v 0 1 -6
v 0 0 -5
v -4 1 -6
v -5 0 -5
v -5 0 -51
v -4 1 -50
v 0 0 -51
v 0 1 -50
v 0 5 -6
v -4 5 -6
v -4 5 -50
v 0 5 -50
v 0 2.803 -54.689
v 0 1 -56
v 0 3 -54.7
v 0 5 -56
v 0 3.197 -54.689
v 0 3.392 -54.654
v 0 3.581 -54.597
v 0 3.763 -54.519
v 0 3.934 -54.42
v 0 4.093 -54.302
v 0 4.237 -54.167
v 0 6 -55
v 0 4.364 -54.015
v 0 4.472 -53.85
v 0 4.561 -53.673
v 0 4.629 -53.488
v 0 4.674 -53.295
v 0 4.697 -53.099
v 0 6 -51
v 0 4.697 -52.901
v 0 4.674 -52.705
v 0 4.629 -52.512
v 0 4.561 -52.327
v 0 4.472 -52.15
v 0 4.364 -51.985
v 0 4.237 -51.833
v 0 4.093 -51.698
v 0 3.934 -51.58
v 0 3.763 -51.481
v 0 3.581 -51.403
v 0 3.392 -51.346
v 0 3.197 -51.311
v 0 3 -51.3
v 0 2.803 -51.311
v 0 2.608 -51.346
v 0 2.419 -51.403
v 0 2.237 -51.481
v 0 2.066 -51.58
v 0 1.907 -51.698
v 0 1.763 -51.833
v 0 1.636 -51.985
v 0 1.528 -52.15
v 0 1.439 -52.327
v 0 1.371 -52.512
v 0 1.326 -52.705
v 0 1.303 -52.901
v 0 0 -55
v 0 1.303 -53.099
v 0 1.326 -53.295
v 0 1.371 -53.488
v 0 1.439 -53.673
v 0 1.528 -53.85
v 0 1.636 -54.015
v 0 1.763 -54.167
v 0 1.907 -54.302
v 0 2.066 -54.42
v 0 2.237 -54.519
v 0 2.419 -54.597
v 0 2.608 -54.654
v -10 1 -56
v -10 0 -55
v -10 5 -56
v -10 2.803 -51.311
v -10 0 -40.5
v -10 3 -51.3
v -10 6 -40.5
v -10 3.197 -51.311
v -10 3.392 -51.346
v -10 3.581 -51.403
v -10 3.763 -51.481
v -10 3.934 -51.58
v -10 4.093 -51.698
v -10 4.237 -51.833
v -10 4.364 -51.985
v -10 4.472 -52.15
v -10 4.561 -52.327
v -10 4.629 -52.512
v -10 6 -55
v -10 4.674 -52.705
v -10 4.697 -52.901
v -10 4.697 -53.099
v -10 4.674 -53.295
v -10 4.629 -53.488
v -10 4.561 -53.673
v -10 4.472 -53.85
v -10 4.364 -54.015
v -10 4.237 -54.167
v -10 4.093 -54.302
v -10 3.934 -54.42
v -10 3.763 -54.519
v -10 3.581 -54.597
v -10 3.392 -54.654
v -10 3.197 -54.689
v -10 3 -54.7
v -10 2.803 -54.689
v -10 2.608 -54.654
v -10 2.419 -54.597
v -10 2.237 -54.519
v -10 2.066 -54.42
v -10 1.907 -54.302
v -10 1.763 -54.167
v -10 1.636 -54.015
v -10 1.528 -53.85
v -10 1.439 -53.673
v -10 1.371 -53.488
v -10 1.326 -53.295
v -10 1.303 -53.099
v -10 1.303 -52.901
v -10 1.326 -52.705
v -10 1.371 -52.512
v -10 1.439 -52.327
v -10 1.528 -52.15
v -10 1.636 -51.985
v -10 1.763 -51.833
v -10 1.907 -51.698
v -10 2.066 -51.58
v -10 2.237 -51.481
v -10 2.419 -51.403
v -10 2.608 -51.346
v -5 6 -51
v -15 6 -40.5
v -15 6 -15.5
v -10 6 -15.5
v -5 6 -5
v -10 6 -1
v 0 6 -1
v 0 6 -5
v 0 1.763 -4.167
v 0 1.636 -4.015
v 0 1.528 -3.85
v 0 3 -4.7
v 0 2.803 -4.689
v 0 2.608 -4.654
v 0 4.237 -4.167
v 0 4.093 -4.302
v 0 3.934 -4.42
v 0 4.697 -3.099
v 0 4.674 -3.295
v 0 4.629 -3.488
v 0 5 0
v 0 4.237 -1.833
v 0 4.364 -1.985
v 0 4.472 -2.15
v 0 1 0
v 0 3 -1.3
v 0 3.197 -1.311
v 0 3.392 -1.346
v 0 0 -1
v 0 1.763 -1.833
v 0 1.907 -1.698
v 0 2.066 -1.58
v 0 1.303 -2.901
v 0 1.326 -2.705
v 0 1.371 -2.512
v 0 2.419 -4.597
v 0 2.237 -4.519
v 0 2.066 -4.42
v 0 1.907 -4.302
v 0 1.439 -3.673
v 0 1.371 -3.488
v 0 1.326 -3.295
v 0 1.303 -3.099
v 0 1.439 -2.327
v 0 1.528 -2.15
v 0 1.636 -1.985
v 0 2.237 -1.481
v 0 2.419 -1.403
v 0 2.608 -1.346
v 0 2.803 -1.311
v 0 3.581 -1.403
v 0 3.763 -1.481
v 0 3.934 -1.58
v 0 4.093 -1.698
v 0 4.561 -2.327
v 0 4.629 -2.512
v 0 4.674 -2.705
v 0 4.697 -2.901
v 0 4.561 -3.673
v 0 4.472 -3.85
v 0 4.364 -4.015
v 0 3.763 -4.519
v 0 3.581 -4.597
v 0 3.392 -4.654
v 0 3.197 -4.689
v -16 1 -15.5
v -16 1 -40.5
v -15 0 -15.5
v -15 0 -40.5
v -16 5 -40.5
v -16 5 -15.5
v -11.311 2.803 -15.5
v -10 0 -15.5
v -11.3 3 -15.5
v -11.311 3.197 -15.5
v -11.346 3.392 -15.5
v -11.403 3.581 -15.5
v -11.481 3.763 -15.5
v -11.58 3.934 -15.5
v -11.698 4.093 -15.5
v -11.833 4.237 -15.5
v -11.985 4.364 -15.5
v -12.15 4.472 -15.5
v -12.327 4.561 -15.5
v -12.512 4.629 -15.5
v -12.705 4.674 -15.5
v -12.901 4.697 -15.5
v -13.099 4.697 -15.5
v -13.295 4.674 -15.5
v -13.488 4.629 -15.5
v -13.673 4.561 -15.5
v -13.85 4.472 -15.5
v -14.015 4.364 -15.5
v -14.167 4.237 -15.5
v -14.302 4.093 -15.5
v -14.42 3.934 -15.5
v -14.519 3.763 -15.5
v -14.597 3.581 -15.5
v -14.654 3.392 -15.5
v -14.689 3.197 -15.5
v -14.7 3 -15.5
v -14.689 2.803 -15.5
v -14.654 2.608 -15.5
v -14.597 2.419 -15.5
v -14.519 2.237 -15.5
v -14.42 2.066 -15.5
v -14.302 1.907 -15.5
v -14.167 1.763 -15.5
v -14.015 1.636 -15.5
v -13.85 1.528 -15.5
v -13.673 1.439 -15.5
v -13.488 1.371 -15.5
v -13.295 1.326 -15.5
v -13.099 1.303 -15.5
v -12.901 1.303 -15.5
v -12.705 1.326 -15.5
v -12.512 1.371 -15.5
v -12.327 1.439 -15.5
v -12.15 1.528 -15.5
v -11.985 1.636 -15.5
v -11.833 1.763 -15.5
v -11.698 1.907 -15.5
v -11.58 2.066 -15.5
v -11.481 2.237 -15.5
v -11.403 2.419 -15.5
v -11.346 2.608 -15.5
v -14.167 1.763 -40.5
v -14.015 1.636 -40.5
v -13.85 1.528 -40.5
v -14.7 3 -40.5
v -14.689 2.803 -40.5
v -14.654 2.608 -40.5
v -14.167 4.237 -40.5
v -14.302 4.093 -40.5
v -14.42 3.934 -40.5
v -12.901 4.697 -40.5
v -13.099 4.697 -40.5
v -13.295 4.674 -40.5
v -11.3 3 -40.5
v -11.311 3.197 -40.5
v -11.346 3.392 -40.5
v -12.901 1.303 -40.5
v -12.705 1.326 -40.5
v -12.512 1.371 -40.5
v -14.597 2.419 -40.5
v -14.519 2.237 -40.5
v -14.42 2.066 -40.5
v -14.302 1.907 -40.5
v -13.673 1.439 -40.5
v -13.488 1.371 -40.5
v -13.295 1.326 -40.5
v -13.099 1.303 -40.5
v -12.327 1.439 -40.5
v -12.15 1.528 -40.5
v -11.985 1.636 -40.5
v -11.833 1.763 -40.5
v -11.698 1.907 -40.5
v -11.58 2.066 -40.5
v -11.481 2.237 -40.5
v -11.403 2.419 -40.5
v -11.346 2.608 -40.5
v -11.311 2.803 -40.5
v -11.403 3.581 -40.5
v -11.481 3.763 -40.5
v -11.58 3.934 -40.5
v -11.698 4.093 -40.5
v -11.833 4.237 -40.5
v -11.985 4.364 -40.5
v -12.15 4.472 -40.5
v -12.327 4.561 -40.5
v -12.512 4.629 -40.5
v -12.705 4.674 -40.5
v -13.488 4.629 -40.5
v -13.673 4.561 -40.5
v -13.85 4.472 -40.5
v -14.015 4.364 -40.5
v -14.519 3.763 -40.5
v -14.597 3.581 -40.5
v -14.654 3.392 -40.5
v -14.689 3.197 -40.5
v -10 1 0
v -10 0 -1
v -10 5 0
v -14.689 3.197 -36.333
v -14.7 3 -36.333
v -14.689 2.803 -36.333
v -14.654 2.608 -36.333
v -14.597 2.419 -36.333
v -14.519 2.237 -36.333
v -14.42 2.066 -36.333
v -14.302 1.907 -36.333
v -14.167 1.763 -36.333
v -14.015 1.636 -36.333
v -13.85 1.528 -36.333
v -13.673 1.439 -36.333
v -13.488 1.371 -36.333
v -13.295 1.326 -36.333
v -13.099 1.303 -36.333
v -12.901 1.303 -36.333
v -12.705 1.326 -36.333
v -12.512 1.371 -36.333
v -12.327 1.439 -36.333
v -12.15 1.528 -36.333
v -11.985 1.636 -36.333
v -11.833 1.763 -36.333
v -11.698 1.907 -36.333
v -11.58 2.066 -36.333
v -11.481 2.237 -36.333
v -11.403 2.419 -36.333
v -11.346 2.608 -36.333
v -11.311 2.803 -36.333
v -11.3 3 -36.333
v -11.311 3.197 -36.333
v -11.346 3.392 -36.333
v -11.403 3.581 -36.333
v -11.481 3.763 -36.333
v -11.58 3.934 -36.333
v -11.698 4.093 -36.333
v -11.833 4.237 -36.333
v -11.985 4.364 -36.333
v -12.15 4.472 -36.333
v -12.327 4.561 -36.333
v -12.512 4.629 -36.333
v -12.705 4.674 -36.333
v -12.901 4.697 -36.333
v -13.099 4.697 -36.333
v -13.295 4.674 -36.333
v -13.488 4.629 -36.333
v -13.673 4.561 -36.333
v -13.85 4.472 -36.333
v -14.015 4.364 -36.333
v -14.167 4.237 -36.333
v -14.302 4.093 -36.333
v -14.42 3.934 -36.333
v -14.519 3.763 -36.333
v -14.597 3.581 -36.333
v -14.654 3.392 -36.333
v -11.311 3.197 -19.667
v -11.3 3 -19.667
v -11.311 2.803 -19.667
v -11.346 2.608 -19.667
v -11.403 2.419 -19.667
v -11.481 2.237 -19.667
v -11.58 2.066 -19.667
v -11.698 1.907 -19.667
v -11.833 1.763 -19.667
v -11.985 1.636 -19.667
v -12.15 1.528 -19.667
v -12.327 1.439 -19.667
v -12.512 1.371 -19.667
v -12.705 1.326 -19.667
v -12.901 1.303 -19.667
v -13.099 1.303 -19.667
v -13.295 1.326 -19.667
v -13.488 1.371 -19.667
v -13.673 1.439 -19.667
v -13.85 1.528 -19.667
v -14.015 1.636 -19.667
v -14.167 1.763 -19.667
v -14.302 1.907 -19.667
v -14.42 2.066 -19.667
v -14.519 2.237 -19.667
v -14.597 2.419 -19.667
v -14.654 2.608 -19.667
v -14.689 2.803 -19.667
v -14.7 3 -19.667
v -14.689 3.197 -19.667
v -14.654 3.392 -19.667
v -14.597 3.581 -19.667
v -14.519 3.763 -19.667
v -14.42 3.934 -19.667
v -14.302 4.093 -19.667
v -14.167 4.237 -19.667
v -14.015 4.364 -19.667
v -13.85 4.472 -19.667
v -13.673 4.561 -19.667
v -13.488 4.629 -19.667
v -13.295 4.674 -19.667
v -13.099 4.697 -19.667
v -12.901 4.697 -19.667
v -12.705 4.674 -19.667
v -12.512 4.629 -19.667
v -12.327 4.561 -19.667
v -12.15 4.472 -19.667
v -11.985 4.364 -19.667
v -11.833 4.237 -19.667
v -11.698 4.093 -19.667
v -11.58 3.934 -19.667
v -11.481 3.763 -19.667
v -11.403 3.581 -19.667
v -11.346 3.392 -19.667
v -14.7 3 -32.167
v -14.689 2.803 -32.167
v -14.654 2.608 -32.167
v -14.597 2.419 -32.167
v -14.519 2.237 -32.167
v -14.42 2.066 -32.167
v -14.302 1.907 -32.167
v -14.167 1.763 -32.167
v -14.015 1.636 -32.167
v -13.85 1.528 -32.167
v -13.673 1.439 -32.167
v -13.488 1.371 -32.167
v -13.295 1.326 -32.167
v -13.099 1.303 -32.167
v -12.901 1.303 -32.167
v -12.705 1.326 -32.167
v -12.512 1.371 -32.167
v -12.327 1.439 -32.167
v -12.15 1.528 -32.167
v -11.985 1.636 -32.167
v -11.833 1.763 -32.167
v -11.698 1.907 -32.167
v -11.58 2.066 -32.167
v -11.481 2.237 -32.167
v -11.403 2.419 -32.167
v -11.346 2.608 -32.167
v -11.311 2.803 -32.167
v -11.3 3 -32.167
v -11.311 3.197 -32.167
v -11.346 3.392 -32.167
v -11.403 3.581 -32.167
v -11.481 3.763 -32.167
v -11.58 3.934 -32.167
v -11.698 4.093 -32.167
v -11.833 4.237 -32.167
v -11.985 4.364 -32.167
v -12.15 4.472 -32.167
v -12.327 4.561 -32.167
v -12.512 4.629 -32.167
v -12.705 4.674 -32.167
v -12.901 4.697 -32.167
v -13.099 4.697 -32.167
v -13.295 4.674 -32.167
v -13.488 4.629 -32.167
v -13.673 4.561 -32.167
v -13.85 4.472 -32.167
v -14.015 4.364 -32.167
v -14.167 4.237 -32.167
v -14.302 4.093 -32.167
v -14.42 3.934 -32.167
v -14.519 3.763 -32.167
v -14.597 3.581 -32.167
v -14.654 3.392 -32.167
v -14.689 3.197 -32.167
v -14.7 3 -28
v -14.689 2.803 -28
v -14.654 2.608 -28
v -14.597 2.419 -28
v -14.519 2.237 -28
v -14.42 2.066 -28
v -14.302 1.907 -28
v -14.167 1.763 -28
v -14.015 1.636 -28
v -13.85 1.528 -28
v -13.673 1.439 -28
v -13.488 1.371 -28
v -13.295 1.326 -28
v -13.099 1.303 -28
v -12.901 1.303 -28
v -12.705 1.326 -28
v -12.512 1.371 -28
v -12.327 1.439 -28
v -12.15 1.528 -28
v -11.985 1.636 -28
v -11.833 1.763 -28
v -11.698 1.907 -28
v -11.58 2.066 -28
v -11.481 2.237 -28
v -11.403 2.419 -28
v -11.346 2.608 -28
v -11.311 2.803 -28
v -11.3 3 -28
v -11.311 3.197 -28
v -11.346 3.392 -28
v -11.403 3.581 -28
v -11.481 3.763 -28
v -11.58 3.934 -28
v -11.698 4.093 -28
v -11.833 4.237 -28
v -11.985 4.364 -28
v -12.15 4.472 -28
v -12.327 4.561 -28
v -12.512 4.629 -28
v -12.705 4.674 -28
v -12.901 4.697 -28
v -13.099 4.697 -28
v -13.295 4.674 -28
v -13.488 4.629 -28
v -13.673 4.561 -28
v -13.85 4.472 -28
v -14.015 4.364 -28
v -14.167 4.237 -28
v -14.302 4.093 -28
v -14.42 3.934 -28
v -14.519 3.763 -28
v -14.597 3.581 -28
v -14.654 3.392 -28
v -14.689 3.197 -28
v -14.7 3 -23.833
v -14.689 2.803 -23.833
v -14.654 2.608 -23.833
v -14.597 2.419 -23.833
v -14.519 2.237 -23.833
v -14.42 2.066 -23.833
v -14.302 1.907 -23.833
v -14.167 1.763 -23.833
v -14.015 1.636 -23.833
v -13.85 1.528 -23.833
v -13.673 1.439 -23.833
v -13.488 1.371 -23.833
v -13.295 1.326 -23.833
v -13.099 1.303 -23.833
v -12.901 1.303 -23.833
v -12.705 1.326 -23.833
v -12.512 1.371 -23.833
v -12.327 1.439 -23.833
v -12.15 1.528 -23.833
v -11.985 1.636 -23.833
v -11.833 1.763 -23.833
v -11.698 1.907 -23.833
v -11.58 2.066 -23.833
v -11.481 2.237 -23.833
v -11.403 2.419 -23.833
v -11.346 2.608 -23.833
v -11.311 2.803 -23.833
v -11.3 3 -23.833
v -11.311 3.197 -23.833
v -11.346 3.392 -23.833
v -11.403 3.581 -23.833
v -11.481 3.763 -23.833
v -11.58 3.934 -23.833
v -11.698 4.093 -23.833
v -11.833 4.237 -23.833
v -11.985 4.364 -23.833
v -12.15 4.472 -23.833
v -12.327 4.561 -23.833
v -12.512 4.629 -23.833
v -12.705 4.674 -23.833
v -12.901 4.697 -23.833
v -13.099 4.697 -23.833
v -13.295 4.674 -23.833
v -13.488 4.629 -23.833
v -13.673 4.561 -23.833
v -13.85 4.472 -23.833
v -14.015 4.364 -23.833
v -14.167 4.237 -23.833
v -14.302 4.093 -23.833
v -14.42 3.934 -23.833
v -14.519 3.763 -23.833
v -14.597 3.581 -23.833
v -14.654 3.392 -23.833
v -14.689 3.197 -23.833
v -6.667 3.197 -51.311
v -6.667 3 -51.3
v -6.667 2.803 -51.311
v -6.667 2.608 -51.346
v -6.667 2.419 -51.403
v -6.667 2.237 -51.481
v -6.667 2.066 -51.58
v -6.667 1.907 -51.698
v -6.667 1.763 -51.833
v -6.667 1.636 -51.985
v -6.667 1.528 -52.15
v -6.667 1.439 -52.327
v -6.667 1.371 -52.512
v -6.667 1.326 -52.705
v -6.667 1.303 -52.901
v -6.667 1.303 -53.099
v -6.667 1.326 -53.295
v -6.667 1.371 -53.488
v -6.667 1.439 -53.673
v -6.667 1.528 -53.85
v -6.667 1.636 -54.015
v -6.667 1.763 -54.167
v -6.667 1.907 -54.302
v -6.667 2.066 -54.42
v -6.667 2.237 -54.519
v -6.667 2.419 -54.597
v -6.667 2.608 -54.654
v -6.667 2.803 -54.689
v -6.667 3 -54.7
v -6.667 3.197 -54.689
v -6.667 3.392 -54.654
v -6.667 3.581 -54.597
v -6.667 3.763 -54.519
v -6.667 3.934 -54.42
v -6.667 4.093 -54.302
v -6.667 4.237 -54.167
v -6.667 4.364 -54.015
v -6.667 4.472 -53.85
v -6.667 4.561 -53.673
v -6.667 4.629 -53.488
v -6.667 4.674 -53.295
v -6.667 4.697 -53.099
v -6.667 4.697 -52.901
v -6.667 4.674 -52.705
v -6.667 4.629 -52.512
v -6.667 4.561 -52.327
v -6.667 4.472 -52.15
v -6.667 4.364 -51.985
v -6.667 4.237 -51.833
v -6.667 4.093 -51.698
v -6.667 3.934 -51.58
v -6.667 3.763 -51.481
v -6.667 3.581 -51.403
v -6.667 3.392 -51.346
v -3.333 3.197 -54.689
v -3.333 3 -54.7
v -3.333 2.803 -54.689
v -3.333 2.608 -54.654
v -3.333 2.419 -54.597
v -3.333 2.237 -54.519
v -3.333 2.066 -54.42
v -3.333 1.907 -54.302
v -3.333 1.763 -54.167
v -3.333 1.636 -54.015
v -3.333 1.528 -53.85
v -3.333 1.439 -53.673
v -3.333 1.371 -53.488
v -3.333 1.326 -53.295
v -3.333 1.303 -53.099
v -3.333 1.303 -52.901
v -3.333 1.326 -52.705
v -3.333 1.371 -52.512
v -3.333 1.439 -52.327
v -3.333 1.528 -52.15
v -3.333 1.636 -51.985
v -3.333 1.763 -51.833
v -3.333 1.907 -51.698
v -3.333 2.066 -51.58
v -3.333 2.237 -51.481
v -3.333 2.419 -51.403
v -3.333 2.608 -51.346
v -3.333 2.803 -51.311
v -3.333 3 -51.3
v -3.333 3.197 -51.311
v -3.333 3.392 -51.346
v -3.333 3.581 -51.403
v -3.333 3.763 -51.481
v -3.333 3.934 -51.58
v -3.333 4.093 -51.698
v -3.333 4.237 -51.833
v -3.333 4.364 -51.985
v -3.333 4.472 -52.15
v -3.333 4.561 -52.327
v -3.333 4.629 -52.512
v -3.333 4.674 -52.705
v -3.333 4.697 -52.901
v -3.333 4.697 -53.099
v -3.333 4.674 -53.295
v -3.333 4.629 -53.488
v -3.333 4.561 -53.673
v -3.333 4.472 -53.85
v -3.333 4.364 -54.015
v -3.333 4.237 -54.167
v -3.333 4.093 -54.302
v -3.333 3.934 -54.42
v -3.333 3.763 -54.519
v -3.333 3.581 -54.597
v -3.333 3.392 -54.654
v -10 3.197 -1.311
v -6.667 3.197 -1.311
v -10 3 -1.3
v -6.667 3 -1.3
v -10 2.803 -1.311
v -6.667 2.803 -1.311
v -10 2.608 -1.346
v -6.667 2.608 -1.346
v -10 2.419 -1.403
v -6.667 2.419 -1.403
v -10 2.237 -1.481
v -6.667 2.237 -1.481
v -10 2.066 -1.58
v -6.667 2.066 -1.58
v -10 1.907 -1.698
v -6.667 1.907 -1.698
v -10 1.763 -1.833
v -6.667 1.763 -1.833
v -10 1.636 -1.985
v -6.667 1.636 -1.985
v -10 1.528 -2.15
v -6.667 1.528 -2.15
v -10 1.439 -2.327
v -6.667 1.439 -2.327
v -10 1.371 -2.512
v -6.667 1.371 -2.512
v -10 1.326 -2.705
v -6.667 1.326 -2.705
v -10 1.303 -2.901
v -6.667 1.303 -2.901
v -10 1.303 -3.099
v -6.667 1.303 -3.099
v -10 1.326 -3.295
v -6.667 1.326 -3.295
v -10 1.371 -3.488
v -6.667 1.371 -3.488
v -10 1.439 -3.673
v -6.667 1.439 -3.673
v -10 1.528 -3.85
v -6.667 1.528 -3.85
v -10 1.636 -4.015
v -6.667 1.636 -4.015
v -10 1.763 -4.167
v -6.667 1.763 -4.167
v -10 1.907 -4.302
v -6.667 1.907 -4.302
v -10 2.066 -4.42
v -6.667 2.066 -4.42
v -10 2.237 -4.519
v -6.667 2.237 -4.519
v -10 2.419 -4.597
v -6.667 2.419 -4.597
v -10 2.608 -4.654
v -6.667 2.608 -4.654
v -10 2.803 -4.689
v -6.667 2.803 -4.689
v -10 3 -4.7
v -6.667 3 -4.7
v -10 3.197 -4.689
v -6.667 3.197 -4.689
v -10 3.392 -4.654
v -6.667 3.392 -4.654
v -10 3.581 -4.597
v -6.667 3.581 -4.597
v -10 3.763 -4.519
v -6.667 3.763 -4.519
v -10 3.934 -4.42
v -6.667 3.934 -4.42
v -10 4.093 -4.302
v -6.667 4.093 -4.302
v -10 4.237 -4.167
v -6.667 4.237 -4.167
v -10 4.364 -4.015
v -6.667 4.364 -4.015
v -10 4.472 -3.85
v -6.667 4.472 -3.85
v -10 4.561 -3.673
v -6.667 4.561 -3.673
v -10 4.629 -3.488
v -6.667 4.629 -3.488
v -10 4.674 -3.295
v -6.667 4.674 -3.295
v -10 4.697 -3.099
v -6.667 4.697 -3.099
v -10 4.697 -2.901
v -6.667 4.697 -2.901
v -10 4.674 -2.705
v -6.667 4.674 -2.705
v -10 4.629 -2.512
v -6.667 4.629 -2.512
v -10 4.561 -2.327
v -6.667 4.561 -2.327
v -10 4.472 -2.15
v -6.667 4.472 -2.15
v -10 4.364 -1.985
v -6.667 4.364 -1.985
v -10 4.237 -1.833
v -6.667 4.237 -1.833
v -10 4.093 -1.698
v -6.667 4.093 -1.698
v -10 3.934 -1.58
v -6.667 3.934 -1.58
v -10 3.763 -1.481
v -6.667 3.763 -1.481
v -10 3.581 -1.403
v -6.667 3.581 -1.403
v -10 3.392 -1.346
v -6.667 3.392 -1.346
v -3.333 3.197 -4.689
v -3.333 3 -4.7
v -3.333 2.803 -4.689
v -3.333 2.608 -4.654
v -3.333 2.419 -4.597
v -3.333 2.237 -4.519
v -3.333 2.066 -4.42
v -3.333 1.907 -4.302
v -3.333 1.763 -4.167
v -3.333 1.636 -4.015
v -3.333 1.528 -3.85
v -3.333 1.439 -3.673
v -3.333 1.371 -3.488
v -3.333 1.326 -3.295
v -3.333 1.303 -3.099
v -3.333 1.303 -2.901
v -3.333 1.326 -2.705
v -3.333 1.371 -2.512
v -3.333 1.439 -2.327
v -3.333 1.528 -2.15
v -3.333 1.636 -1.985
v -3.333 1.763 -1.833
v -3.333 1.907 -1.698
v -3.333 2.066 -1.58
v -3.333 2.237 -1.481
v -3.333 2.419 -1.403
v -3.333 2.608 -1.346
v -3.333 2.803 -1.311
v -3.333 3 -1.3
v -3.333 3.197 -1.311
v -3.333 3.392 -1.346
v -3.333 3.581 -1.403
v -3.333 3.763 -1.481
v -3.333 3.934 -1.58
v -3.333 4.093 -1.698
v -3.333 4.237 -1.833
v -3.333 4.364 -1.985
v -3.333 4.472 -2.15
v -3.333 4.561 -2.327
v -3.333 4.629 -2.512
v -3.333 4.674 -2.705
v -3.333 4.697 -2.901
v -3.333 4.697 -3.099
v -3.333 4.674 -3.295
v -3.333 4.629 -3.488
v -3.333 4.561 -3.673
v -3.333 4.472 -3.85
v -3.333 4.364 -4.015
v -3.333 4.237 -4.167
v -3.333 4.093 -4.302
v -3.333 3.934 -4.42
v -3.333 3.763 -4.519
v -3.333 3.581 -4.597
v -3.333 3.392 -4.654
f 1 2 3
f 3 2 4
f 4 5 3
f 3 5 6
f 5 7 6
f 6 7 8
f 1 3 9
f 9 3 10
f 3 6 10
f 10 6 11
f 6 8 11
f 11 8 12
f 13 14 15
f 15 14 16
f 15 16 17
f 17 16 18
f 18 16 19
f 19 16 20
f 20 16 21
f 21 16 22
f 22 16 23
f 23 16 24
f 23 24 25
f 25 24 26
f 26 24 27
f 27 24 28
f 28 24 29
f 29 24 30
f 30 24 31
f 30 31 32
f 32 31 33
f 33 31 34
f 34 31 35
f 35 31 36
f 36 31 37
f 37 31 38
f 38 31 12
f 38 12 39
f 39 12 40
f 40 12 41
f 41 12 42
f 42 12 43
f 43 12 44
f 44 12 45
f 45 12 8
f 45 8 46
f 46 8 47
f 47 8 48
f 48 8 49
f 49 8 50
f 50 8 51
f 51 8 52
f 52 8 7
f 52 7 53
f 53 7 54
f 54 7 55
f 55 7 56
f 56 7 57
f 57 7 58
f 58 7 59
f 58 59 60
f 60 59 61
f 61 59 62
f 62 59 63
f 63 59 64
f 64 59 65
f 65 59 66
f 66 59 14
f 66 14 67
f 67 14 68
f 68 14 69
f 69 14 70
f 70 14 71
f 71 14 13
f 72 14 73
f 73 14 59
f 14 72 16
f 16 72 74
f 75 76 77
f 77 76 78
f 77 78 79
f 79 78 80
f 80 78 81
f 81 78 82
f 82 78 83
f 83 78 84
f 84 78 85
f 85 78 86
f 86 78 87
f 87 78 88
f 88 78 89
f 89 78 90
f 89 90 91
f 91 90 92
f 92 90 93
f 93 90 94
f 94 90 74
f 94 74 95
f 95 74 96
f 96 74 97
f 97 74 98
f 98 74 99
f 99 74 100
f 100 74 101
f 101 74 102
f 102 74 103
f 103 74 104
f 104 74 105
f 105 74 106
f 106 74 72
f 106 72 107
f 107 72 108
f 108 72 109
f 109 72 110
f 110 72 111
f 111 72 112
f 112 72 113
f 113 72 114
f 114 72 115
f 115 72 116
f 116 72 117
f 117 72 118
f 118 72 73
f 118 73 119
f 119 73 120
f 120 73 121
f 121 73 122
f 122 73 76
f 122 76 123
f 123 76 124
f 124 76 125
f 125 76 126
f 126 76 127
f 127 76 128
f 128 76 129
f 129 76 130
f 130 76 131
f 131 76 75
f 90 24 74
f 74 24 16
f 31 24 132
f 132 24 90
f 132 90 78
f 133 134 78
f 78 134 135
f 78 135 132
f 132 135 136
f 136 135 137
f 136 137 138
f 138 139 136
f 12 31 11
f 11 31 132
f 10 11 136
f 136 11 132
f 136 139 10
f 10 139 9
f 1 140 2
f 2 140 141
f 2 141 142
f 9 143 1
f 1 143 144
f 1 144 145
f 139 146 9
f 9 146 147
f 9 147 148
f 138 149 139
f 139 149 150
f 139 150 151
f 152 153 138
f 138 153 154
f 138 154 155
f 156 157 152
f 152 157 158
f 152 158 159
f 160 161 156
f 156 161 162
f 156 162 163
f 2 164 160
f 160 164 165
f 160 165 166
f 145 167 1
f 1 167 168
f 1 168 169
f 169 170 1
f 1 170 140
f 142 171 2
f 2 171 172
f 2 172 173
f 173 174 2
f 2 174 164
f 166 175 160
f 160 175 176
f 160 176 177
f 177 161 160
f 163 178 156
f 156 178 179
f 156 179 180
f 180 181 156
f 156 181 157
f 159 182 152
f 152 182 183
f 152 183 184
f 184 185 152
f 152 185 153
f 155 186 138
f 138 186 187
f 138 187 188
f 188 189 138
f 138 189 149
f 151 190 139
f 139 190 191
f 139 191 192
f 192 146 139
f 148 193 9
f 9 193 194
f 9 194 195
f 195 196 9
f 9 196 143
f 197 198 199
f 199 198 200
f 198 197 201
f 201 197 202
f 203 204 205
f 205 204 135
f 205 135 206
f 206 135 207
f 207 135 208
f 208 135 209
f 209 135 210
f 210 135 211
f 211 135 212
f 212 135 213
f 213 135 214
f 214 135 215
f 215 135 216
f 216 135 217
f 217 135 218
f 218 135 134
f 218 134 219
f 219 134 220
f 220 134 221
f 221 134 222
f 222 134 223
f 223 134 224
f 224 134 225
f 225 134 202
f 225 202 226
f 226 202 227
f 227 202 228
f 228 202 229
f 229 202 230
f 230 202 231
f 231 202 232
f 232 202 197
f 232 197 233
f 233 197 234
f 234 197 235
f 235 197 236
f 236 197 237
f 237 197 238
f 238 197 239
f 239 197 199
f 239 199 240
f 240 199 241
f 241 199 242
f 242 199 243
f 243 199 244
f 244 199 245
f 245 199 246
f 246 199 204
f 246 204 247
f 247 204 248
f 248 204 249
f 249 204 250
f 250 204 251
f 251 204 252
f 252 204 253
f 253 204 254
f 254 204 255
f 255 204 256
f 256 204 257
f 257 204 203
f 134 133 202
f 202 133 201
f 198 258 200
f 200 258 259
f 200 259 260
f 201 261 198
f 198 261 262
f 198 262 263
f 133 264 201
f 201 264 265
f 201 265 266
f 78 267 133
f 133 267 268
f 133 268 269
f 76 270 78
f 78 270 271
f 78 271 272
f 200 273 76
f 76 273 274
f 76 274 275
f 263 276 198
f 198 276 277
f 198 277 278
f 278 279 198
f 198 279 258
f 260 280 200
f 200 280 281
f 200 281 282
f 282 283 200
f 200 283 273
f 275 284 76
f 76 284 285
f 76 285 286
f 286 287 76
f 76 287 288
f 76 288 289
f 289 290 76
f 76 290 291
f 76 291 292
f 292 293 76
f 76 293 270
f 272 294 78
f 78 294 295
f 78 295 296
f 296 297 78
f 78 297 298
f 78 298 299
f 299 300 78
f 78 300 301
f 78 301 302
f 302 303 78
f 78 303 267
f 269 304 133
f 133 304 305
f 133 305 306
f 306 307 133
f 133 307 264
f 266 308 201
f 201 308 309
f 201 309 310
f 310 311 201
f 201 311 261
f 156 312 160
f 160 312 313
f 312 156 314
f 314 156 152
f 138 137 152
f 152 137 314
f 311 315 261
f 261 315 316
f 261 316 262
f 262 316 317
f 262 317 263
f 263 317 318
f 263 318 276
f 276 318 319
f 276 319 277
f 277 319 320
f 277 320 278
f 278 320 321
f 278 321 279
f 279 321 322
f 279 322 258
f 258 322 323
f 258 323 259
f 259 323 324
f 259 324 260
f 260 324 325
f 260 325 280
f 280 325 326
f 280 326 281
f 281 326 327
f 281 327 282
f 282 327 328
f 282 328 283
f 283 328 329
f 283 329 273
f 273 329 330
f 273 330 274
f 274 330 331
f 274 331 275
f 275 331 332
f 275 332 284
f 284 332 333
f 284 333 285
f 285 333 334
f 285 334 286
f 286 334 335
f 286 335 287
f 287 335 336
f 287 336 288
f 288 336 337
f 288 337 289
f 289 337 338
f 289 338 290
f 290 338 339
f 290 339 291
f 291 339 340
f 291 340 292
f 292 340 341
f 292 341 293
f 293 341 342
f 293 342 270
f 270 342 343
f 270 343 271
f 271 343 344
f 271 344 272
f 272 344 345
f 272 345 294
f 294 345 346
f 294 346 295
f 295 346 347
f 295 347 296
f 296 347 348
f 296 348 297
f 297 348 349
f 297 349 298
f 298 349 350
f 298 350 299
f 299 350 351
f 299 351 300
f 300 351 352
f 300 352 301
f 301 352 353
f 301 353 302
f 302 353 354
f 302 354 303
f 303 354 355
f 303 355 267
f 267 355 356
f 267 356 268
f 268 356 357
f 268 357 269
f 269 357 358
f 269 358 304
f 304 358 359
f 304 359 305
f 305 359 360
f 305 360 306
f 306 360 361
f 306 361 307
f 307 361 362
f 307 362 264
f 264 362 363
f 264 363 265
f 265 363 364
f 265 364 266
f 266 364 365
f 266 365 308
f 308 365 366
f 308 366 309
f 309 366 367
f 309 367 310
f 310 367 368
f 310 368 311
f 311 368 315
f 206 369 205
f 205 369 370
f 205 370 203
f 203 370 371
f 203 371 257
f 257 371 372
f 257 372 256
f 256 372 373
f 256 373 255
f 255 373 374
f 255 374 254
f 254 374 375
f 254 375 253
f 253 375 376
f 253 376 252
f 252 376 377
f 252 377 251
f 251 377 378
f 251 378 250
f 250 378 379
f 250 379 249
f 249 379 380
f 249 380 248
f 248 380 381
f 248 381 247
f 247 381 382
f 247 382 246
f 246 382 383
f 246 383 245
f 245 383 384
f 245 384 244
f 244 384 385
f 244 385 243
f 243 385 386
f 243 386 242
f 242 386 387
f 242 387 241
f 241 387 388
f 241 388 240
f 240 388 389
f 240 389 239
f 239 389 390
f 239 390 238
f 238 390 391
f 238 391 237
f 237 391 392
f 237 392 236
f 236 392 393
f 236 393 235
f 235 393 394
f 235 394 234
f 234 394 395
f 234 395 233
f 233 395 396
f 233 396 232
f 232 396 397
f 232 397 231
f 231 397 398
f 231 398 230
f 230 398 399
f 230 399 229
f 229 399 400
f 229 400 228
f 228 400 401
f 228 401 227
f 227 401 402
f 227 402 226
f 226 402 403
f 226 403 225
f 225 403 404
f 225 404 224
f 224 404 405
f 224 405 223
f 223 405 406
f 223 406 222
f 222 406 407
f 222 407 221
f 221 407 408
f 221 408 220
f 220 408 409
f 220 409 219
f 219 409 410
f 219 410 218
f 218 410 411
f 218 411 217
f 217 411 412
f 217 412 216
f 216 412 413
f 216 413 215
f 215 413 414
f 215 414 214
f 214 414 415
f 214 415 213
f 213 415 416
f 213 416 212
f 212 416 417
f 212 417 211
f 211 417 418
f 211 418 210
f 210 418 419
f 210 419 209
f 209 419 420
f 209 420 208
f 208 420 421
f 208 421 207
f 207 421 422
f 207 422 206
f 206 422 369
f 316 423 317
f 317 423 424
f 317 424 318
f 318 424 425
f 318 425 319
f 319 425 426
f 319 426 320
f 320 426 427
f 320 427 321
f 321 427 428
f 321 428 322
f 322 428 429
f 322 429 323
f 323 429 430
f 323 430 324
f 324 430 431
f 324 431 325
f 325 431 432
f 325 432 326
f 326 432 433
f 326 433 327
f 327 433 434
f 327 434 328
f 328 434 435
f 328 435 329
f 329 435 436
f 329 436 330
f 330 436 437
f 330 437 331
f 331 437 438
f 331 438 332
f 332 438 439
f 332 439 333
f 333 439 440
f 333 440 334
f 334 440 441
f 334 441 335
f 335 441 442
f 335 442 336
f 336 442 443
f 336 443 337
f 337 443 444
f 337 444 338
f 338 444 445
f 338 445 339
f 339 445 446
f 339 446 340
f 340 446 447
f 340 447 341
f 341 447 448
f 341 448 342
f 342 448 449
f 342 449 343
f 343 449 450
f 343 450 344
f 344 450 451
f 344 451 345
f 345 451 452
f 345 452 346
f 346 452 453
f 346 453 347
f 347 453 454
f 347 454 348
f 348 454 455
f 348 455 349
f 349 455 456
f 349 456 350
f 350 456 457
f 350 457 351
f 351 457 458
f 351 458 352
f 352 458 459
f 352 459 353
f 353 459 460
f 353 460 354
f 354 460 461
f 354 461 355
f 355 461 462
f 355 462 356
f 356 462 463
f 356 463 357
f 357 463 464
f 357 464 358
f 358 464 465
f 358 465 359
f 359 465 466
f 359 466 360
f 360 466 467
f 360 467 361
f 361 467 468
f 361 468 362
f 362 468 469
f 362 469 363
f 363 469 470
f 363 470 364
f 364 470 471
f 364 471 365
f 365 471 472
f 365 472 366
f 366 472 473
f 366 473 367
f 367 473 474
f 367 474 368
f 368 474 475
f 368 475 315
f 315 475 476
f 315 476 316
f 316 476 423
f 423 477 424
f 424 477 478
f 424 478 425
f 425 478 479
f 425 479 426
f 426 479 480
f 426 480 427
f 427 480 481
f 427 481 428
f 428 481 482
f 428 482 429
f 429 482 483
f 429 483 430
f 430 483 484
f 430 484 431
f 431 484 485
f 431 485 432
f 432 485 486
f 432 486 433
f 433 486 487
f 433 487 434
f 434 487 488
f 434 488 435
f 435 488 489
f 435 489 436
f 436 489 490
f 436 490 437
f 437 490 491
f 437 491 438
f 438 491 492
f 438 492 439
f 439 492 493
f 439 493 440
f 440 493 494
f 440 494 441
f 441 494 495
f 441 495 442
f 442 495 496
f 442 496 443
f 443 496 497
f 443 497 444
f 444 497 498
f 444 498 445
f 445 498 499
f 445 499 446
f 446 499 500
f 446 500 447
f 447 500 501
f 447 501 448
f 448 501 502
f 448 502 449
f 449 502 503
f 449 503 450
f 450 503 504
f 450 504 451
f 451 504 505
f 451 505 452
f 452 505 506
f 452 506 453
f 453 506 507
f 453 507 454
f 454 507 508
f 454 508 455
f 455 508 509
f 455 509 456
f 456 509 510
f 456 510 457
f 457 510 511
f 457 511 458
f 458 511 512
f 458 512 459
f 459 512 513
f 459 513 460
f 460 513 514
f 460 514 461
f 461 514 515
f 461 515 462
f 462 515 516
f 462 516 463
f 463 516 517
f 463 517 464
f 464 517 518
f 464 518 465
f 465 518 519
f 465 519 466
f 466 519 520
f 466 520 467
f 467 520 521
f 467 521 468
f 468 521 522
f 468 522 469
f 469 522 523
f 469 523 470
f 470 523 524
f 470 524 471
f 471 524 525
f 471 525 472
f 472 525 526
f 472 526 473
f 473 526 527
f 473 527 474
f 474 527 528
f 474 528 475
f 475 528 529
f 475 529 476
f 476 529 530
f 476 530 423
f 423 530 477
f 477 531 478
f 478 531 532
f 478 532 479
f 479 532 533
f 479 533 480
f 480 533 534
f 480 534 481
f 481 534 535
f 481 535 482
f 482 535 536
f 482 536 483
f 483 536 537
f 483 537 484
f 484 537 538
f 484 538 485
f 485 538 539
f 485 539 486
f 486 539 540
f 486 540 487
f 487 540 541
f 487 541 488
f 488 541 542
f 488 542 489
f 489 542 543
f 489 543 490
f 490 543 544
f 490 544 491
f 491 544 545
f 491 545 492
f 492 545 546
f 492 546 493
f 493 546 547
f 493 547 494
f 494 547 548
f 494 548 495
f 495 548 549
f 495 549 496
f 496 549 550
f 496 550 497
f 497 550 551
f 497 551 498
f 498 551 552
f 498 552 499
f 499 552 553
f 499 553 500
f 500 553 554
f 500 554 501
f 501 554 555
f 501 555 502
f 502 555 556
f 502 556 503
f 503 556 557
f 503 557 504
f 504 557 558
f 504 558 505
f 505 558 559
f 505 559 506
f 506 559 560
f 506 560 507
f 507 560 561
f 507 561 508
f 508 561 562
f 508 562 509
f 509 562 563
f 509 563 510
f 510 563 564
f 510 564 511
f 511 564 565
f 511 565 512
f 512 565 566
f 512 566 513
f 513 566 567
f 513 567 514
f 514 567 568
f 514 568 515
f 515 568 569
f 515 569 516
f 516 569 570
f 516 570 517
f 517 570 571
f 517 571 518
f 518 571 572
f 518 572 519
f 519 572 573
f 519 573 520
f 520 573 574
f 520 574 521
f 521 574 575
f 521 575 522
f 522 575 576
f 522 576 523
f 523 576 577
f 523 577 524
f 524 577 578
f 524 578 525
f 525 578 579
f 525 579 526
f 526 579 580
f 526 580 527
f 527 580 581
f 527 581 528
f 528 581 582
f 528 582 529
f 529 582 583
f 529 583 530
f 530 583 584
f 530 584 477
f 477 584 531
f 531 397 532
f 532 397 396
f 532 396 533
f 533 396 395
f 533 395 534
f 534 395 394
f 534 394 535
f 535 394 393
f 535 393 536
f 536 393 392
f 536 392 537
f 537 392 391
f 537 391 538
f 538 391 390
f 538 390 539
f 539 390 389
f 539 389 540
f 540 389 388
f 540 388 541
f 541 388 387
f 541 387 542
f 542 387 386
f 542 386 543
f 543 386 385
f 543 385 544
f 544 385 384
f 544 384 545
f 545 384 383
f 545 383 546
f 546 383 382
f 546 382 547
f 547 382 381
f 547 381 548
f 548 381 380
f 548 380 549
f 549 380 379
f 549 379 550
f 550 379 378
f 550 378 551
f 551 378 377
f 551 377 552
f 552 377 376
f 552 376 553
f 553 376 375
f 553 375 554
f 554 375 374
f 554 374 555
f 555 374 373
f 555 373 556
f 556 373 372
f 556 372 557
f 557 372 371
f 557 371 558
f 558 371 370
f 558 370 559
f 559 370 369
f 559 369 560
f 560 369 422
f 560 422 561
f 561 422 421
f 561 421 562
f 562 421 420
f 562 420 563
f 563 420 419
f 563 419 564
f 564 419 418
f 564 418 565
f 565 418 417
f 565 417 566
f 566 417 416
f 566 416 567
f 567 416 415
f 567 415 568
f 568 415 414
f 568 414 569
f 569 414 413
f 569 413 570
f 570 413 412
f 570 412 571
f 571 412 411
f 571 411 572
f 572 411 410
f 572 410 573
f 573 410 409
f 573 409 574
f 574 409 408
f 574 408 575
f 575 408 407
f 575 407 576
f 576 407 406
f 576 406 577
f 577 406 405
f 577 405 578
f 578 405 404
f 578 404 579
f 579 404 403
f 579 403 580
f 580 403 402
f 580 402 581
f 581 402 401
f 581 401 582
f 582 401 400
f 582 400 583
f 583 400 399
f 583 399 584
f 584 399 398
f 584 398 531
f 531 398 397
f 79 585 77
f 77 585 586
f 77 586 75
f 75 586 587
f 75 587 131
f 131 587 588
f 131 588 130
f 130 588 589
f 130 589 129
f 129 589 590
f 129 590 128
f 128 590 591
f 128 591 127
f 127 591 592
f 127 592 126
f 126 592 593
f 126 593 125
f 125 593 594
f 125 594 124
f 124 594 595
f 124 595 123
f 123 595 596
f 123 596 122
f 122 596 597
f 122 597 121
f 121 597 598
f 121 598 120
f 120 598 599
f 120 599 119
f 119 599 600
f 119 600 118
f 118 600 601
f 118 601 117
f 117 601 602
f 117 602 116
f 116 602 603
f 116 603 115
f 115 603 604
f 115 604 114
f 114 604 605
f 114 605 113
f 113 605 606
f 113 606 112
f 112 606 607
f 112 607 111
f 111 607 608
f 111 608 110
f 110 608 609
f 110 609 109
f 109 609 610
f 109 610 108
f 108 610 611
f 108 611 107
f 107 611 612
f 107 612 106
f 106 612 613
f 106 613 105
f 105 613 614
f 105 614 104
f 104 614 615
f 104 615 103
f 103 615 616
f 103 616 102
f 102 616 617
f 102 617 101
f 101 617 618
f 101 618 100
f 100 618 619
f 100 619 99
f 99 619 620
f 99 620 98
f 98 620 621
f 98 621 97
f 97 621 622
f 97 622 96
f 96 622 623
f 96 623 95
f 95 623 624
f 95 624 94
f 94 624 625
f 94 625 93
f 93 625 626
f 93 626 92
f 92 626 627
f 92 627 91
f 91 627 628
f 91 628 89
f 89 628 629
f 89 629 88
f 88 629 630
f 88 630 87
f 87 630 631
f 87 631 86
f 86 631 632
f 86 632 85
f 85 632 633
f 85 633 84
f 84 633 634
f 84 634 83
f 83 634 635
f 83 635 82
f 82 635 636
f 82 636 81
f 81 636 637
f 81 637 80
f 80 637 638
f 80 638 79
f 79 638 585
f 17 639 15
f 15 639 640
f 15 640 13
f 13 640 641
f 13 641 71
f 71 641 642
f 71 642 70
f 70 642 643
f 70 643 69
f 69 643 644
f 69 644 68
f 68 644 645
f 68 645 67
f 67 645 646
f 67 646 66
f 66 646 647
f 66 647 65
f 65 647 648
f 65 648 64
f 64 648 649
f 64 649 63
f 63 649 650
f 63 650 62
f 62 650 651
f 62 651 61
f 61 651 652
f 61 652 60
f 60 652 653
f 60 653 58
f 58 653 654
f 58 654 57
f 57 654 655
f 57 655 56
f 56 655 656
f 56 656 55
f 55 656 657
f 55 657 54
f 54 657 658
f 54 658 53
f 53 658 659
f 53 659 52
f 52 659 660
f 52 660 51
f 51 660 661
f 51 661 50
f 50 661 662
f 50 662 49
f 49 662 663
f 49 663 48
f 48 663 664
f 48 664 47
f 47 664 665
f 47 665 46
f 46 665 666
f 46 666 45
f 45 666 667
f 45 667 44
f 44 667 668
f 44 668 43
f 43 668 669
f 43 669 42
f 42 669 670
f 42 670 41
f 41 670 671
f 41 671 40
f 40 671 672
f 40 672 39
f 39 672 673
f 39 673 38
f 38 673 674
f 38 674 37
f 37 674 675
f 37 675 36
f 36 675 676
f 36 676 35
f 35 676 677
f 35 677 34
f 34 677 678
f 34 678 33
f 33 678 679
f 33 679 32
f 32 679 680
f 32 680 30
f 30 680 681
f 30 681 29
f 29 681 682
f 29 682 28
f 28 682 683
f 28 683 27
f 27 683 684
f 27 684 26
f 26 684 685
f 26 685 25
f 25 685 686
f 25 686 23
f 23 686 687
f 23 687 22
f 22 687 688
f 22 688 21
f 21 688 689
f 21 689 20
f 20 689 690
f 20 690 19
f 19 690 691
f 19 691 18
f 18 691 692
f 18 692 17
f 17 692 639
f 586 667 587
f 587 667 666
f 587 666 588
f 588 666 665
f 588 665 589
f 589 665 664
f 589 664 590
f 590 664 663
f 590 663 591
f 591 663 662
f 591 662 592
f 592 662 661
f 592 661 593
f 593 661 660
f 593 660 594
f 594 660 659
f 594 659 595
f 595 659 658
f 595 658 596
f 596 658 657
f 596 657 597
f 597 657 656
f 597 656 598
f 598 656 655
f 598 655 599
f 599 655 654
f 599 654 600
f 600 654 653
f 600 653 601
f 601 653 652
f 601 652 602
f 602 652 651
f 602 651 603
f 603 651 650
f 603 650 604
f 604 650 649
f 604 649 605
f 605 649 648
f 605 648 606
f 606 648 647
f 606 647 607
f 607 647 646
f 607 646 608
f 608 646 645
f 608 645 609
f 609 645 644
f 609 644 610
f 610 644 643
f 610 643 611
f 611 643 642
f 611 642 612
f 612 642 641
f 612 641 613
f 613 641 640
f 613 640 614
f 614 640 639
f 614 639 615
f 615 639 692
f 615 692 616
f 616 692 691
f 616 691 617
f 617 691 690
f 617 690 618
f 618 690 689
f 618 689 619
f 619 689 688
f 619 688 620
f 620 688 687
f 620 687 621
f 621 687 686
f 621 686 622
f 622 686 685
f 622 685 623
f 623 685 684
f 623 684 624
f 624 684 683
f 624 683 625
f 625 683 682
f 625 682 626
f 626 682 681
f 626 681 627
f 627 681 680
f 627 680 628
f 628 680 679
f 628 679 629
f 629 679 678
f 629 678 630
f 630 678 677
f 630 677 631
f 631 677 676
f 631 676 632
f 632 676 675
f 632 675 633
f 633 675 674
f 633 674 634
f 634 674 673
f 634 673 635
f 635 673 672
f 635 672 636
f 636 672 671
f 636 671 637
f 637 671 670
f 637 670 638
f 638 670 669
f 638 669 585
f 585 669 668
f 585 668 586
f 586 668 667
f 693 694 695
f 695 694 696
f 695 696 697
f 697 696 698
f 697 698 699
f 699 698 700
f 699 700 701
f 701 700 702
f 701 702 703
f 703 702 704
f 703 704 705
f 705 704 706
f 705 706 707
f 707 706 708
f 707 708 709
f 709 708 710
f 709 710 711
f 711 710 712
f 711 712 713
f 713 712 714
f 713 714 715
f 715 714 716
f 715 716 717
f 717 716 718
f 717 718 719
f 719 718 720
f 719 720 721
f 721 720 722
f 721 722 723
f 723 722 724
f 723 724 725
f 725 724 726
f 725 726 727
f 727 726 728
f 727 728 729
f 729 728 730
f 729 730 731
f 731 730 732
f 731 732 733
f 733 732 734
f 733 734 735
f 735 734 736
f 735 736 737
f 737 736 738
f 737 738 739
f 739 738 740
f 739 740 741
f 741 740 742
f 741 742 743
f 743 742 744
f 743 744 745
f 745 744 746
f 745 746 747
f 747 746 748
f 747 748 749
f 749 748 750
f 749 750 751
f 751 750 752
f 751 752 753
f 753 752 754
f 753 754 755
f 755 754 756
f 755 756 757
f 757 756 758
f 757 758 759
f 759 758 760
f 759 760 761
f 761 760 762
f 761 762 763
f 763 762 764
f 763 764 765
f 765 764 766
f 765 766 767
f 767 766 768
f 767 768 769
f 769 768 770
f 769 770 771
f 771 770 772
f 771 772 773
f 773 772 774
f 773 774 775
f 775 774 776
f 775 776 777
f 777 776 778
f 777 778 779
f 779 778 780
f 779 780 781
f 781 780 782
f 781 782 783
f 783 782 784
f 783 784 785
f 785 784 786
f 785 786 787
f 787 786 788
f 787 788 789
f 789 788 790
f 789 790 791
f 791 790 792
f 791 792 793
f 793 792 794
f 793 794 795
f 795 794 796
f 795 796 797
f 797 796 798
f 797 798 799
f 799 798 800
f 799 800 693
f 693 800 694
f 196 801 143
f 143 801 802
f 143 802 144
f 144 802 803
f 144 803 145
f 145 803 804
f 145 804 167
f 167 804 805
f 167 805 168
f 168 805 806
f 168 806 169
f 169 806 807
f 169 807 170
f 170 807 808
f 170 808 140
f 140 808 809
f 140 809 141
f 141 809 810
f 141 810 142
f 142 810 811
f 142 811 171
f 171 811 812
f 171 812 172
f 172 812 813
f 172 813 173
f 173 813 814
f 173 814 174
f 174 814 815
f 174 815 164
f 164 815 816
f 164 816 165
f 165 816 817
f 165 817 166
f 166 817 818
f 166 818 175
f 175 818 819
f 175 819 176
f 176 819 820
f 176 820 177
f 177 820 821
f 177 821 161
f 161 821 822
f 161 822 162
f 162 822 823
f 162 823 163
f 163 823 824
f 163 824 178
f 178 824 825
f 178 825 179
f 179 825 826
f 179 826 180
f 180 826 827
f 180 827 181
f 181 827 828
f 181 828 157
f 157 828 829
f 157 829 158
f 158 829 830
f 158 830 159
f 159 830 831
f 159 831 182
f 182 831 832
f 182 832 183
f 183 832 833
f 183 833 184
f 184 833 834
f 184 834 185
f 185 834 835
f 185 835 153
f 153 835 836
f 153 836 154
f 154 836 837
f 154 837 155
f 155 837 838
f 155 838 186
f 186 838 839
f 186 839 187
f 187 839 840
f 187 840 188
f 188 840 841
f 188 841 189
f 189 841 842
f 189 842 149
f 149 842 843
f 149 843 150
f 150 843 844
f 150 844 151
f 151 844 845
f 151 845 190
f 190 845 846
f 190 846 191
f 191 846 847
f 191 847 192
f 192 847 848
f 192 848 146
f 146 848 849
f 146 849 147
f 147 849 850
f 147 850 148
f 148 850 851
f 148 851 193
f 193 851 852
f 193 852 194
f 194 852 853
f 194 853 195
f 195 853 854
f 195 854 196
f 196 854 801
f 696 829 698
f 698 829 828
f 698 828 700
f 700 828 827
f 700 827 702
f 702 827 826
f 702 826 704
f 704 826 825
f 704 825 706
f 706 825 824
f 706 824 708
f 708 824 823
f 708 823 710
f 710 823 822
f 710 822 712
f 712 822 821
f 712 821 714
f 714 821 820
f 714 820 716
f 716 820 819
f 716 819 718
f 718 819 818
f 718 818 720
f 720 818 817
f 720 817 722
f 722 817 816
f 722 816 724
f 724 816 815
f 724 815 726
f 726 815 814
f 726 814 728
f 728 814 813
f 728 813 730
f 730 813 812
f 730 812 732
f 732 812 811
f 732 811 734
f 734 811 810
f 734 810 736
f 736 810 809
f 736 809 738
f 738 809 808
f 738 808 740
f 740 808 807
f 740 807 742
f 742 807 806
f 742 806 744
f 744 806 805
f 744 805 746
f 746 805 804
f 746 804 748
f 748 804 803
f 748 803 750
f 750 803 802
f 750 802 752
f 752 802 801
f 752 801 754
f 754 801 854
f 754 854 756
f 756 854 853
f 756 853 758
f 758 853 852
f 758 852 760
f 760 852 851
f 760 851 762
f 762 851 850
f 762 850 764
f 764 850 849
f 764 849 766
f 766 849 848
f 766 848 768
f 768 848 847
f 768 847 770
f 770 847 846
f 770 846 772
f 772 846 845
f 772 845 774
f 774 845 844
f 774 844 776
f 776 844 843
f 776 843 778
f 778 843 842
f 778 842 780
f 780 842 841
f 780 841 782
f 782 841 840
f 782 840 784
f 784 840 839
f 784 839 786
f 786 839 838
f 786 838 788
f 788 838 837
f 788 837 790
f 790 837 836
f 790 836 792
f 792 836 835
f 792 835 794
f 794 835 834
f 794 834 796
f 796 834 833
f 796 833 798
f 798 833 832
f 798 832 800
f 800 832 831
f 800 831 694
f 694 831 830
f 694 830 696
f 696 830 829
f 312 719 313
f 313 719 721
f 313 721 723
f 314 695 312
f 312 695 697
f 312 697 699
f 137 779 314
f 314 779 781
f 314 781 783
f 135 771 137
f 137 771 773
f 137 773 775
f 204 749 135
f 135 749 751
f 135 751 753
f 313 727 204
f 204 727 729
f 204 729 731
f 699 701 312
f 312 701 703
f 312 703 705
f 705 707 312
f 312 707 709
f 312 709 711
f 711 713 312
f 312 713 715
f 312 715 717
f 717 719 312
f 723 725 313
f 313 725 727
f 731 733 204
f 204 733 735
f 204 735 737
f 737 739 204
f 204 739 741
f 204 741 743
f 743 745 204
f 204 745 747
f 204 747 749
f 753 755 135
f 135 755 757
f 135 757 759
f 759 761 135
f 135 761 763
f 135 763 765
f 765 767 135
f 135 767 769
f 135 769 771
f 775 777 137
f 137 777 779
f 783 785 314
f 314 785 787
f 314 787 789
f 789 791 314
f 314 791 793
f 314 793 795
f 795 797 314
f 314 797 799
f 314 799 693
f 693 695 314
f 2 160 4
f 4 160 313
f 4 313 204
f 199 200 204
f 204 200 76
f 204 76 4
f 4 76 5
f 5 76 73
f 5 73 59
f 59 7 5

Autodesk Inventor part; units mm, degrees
ref_plane "YZ Plane" through (0, 0, 0) normal (1, 0, 0) x (0, 1, 0)
ref_plane "XZ Plane" through (0, 0, 0) normal (0, 1, 0) x (-1, 0, 0)
ref_plane "XY Plane" through (0, 0, 0) normal (0, 0, 1) x (1, 0, 0)
sketch "Sketch1" plane through (0, 0, 0) normal (0, 1, 0) x (-1, 0, 0)
  line L0 (0, 0) -> (0, -6)
  line L1 (0, -6) -> (4, -6)
  line L2 (4, -6) -> (4, -50)
  line L3 (4, -50) -> (0, -50)
  line L4 (0, -50) -> (0, -56)
  line L5 (0, -56) -> (10, -56)
  line L6 (0, 0) -> (10, 0)
  line L7 (10, 0) -> (10, -15.5)
  line L8 (10, -15.5) -> (16, -15.5)
  line L9 (16, -40.5) -> (10, -40.5)
  line L10 (10, -40.5) -> (10, -56)
  line L11 (16, -15.5) -> (16, -40.5)
  point P0 (0, -3)
  point P1 (0, -53)
  dimension "d0" = 25
  dimension "d1" = 6
  dimension "d2" = 50
  dimension "d3" = 6
  dimension "d4" = 4
  dimension "d17" = 6
extrude "Extrusion1" add sketch "Sketch1" along normal blind 6
sketch "Sketch2" plane through (0, 0, 0) normal (1, 0, 0) x (0, 0, -1)
  line L0 (15.5, 6) -> (0, 6) projected
  line L1 (6, 0) -> (50, 0) projected
  line L2 (0, 6) -> (6, 0) construction
  line L3 (50, 0) -> (56, 0) projected
  line L4 (50, 0) -> (56, 6) construction
  circle A0 centre (3, 3) radius 1.7
  circle A1 centre (53, 3) radius 1.7
  point P0 (0, 0)
  dimension "d8" = 3.4
extrude "Extrusion2" cut sketch "Sketch2" against normal through all
sketch "Sketch3" plane through (-16, 0, -15.5) normal (0, 0, 1) x (1, 0, 0)
  line L0 (16, 0) -> (6, 0) projected
  line L1 (0, 6) -> (6, 0) construction
  circle A0 centre (3, 3) radius 1.7
  dimension "d11" = 3.4
extrude "Extrusion3" cut sketch "Sketch3" against normal through all
chamfer "Chamfer1" distance 1 angle 45 12 edges at (-5, 6, 0) (-5, 0, 0) (-16, 6, -28) (-16, 0, -28) (-2, 6, -50) (-5, 6, -56) (-5, 0, -56) (-2, 0, -50) (-4, 6, -28) (-4, 0, -28) (-2, 6, -6) (-2, 0, -6)
equation "\"d3\" = d1"
equation "\"d6\" = d1"
properties part number "camadapter"
